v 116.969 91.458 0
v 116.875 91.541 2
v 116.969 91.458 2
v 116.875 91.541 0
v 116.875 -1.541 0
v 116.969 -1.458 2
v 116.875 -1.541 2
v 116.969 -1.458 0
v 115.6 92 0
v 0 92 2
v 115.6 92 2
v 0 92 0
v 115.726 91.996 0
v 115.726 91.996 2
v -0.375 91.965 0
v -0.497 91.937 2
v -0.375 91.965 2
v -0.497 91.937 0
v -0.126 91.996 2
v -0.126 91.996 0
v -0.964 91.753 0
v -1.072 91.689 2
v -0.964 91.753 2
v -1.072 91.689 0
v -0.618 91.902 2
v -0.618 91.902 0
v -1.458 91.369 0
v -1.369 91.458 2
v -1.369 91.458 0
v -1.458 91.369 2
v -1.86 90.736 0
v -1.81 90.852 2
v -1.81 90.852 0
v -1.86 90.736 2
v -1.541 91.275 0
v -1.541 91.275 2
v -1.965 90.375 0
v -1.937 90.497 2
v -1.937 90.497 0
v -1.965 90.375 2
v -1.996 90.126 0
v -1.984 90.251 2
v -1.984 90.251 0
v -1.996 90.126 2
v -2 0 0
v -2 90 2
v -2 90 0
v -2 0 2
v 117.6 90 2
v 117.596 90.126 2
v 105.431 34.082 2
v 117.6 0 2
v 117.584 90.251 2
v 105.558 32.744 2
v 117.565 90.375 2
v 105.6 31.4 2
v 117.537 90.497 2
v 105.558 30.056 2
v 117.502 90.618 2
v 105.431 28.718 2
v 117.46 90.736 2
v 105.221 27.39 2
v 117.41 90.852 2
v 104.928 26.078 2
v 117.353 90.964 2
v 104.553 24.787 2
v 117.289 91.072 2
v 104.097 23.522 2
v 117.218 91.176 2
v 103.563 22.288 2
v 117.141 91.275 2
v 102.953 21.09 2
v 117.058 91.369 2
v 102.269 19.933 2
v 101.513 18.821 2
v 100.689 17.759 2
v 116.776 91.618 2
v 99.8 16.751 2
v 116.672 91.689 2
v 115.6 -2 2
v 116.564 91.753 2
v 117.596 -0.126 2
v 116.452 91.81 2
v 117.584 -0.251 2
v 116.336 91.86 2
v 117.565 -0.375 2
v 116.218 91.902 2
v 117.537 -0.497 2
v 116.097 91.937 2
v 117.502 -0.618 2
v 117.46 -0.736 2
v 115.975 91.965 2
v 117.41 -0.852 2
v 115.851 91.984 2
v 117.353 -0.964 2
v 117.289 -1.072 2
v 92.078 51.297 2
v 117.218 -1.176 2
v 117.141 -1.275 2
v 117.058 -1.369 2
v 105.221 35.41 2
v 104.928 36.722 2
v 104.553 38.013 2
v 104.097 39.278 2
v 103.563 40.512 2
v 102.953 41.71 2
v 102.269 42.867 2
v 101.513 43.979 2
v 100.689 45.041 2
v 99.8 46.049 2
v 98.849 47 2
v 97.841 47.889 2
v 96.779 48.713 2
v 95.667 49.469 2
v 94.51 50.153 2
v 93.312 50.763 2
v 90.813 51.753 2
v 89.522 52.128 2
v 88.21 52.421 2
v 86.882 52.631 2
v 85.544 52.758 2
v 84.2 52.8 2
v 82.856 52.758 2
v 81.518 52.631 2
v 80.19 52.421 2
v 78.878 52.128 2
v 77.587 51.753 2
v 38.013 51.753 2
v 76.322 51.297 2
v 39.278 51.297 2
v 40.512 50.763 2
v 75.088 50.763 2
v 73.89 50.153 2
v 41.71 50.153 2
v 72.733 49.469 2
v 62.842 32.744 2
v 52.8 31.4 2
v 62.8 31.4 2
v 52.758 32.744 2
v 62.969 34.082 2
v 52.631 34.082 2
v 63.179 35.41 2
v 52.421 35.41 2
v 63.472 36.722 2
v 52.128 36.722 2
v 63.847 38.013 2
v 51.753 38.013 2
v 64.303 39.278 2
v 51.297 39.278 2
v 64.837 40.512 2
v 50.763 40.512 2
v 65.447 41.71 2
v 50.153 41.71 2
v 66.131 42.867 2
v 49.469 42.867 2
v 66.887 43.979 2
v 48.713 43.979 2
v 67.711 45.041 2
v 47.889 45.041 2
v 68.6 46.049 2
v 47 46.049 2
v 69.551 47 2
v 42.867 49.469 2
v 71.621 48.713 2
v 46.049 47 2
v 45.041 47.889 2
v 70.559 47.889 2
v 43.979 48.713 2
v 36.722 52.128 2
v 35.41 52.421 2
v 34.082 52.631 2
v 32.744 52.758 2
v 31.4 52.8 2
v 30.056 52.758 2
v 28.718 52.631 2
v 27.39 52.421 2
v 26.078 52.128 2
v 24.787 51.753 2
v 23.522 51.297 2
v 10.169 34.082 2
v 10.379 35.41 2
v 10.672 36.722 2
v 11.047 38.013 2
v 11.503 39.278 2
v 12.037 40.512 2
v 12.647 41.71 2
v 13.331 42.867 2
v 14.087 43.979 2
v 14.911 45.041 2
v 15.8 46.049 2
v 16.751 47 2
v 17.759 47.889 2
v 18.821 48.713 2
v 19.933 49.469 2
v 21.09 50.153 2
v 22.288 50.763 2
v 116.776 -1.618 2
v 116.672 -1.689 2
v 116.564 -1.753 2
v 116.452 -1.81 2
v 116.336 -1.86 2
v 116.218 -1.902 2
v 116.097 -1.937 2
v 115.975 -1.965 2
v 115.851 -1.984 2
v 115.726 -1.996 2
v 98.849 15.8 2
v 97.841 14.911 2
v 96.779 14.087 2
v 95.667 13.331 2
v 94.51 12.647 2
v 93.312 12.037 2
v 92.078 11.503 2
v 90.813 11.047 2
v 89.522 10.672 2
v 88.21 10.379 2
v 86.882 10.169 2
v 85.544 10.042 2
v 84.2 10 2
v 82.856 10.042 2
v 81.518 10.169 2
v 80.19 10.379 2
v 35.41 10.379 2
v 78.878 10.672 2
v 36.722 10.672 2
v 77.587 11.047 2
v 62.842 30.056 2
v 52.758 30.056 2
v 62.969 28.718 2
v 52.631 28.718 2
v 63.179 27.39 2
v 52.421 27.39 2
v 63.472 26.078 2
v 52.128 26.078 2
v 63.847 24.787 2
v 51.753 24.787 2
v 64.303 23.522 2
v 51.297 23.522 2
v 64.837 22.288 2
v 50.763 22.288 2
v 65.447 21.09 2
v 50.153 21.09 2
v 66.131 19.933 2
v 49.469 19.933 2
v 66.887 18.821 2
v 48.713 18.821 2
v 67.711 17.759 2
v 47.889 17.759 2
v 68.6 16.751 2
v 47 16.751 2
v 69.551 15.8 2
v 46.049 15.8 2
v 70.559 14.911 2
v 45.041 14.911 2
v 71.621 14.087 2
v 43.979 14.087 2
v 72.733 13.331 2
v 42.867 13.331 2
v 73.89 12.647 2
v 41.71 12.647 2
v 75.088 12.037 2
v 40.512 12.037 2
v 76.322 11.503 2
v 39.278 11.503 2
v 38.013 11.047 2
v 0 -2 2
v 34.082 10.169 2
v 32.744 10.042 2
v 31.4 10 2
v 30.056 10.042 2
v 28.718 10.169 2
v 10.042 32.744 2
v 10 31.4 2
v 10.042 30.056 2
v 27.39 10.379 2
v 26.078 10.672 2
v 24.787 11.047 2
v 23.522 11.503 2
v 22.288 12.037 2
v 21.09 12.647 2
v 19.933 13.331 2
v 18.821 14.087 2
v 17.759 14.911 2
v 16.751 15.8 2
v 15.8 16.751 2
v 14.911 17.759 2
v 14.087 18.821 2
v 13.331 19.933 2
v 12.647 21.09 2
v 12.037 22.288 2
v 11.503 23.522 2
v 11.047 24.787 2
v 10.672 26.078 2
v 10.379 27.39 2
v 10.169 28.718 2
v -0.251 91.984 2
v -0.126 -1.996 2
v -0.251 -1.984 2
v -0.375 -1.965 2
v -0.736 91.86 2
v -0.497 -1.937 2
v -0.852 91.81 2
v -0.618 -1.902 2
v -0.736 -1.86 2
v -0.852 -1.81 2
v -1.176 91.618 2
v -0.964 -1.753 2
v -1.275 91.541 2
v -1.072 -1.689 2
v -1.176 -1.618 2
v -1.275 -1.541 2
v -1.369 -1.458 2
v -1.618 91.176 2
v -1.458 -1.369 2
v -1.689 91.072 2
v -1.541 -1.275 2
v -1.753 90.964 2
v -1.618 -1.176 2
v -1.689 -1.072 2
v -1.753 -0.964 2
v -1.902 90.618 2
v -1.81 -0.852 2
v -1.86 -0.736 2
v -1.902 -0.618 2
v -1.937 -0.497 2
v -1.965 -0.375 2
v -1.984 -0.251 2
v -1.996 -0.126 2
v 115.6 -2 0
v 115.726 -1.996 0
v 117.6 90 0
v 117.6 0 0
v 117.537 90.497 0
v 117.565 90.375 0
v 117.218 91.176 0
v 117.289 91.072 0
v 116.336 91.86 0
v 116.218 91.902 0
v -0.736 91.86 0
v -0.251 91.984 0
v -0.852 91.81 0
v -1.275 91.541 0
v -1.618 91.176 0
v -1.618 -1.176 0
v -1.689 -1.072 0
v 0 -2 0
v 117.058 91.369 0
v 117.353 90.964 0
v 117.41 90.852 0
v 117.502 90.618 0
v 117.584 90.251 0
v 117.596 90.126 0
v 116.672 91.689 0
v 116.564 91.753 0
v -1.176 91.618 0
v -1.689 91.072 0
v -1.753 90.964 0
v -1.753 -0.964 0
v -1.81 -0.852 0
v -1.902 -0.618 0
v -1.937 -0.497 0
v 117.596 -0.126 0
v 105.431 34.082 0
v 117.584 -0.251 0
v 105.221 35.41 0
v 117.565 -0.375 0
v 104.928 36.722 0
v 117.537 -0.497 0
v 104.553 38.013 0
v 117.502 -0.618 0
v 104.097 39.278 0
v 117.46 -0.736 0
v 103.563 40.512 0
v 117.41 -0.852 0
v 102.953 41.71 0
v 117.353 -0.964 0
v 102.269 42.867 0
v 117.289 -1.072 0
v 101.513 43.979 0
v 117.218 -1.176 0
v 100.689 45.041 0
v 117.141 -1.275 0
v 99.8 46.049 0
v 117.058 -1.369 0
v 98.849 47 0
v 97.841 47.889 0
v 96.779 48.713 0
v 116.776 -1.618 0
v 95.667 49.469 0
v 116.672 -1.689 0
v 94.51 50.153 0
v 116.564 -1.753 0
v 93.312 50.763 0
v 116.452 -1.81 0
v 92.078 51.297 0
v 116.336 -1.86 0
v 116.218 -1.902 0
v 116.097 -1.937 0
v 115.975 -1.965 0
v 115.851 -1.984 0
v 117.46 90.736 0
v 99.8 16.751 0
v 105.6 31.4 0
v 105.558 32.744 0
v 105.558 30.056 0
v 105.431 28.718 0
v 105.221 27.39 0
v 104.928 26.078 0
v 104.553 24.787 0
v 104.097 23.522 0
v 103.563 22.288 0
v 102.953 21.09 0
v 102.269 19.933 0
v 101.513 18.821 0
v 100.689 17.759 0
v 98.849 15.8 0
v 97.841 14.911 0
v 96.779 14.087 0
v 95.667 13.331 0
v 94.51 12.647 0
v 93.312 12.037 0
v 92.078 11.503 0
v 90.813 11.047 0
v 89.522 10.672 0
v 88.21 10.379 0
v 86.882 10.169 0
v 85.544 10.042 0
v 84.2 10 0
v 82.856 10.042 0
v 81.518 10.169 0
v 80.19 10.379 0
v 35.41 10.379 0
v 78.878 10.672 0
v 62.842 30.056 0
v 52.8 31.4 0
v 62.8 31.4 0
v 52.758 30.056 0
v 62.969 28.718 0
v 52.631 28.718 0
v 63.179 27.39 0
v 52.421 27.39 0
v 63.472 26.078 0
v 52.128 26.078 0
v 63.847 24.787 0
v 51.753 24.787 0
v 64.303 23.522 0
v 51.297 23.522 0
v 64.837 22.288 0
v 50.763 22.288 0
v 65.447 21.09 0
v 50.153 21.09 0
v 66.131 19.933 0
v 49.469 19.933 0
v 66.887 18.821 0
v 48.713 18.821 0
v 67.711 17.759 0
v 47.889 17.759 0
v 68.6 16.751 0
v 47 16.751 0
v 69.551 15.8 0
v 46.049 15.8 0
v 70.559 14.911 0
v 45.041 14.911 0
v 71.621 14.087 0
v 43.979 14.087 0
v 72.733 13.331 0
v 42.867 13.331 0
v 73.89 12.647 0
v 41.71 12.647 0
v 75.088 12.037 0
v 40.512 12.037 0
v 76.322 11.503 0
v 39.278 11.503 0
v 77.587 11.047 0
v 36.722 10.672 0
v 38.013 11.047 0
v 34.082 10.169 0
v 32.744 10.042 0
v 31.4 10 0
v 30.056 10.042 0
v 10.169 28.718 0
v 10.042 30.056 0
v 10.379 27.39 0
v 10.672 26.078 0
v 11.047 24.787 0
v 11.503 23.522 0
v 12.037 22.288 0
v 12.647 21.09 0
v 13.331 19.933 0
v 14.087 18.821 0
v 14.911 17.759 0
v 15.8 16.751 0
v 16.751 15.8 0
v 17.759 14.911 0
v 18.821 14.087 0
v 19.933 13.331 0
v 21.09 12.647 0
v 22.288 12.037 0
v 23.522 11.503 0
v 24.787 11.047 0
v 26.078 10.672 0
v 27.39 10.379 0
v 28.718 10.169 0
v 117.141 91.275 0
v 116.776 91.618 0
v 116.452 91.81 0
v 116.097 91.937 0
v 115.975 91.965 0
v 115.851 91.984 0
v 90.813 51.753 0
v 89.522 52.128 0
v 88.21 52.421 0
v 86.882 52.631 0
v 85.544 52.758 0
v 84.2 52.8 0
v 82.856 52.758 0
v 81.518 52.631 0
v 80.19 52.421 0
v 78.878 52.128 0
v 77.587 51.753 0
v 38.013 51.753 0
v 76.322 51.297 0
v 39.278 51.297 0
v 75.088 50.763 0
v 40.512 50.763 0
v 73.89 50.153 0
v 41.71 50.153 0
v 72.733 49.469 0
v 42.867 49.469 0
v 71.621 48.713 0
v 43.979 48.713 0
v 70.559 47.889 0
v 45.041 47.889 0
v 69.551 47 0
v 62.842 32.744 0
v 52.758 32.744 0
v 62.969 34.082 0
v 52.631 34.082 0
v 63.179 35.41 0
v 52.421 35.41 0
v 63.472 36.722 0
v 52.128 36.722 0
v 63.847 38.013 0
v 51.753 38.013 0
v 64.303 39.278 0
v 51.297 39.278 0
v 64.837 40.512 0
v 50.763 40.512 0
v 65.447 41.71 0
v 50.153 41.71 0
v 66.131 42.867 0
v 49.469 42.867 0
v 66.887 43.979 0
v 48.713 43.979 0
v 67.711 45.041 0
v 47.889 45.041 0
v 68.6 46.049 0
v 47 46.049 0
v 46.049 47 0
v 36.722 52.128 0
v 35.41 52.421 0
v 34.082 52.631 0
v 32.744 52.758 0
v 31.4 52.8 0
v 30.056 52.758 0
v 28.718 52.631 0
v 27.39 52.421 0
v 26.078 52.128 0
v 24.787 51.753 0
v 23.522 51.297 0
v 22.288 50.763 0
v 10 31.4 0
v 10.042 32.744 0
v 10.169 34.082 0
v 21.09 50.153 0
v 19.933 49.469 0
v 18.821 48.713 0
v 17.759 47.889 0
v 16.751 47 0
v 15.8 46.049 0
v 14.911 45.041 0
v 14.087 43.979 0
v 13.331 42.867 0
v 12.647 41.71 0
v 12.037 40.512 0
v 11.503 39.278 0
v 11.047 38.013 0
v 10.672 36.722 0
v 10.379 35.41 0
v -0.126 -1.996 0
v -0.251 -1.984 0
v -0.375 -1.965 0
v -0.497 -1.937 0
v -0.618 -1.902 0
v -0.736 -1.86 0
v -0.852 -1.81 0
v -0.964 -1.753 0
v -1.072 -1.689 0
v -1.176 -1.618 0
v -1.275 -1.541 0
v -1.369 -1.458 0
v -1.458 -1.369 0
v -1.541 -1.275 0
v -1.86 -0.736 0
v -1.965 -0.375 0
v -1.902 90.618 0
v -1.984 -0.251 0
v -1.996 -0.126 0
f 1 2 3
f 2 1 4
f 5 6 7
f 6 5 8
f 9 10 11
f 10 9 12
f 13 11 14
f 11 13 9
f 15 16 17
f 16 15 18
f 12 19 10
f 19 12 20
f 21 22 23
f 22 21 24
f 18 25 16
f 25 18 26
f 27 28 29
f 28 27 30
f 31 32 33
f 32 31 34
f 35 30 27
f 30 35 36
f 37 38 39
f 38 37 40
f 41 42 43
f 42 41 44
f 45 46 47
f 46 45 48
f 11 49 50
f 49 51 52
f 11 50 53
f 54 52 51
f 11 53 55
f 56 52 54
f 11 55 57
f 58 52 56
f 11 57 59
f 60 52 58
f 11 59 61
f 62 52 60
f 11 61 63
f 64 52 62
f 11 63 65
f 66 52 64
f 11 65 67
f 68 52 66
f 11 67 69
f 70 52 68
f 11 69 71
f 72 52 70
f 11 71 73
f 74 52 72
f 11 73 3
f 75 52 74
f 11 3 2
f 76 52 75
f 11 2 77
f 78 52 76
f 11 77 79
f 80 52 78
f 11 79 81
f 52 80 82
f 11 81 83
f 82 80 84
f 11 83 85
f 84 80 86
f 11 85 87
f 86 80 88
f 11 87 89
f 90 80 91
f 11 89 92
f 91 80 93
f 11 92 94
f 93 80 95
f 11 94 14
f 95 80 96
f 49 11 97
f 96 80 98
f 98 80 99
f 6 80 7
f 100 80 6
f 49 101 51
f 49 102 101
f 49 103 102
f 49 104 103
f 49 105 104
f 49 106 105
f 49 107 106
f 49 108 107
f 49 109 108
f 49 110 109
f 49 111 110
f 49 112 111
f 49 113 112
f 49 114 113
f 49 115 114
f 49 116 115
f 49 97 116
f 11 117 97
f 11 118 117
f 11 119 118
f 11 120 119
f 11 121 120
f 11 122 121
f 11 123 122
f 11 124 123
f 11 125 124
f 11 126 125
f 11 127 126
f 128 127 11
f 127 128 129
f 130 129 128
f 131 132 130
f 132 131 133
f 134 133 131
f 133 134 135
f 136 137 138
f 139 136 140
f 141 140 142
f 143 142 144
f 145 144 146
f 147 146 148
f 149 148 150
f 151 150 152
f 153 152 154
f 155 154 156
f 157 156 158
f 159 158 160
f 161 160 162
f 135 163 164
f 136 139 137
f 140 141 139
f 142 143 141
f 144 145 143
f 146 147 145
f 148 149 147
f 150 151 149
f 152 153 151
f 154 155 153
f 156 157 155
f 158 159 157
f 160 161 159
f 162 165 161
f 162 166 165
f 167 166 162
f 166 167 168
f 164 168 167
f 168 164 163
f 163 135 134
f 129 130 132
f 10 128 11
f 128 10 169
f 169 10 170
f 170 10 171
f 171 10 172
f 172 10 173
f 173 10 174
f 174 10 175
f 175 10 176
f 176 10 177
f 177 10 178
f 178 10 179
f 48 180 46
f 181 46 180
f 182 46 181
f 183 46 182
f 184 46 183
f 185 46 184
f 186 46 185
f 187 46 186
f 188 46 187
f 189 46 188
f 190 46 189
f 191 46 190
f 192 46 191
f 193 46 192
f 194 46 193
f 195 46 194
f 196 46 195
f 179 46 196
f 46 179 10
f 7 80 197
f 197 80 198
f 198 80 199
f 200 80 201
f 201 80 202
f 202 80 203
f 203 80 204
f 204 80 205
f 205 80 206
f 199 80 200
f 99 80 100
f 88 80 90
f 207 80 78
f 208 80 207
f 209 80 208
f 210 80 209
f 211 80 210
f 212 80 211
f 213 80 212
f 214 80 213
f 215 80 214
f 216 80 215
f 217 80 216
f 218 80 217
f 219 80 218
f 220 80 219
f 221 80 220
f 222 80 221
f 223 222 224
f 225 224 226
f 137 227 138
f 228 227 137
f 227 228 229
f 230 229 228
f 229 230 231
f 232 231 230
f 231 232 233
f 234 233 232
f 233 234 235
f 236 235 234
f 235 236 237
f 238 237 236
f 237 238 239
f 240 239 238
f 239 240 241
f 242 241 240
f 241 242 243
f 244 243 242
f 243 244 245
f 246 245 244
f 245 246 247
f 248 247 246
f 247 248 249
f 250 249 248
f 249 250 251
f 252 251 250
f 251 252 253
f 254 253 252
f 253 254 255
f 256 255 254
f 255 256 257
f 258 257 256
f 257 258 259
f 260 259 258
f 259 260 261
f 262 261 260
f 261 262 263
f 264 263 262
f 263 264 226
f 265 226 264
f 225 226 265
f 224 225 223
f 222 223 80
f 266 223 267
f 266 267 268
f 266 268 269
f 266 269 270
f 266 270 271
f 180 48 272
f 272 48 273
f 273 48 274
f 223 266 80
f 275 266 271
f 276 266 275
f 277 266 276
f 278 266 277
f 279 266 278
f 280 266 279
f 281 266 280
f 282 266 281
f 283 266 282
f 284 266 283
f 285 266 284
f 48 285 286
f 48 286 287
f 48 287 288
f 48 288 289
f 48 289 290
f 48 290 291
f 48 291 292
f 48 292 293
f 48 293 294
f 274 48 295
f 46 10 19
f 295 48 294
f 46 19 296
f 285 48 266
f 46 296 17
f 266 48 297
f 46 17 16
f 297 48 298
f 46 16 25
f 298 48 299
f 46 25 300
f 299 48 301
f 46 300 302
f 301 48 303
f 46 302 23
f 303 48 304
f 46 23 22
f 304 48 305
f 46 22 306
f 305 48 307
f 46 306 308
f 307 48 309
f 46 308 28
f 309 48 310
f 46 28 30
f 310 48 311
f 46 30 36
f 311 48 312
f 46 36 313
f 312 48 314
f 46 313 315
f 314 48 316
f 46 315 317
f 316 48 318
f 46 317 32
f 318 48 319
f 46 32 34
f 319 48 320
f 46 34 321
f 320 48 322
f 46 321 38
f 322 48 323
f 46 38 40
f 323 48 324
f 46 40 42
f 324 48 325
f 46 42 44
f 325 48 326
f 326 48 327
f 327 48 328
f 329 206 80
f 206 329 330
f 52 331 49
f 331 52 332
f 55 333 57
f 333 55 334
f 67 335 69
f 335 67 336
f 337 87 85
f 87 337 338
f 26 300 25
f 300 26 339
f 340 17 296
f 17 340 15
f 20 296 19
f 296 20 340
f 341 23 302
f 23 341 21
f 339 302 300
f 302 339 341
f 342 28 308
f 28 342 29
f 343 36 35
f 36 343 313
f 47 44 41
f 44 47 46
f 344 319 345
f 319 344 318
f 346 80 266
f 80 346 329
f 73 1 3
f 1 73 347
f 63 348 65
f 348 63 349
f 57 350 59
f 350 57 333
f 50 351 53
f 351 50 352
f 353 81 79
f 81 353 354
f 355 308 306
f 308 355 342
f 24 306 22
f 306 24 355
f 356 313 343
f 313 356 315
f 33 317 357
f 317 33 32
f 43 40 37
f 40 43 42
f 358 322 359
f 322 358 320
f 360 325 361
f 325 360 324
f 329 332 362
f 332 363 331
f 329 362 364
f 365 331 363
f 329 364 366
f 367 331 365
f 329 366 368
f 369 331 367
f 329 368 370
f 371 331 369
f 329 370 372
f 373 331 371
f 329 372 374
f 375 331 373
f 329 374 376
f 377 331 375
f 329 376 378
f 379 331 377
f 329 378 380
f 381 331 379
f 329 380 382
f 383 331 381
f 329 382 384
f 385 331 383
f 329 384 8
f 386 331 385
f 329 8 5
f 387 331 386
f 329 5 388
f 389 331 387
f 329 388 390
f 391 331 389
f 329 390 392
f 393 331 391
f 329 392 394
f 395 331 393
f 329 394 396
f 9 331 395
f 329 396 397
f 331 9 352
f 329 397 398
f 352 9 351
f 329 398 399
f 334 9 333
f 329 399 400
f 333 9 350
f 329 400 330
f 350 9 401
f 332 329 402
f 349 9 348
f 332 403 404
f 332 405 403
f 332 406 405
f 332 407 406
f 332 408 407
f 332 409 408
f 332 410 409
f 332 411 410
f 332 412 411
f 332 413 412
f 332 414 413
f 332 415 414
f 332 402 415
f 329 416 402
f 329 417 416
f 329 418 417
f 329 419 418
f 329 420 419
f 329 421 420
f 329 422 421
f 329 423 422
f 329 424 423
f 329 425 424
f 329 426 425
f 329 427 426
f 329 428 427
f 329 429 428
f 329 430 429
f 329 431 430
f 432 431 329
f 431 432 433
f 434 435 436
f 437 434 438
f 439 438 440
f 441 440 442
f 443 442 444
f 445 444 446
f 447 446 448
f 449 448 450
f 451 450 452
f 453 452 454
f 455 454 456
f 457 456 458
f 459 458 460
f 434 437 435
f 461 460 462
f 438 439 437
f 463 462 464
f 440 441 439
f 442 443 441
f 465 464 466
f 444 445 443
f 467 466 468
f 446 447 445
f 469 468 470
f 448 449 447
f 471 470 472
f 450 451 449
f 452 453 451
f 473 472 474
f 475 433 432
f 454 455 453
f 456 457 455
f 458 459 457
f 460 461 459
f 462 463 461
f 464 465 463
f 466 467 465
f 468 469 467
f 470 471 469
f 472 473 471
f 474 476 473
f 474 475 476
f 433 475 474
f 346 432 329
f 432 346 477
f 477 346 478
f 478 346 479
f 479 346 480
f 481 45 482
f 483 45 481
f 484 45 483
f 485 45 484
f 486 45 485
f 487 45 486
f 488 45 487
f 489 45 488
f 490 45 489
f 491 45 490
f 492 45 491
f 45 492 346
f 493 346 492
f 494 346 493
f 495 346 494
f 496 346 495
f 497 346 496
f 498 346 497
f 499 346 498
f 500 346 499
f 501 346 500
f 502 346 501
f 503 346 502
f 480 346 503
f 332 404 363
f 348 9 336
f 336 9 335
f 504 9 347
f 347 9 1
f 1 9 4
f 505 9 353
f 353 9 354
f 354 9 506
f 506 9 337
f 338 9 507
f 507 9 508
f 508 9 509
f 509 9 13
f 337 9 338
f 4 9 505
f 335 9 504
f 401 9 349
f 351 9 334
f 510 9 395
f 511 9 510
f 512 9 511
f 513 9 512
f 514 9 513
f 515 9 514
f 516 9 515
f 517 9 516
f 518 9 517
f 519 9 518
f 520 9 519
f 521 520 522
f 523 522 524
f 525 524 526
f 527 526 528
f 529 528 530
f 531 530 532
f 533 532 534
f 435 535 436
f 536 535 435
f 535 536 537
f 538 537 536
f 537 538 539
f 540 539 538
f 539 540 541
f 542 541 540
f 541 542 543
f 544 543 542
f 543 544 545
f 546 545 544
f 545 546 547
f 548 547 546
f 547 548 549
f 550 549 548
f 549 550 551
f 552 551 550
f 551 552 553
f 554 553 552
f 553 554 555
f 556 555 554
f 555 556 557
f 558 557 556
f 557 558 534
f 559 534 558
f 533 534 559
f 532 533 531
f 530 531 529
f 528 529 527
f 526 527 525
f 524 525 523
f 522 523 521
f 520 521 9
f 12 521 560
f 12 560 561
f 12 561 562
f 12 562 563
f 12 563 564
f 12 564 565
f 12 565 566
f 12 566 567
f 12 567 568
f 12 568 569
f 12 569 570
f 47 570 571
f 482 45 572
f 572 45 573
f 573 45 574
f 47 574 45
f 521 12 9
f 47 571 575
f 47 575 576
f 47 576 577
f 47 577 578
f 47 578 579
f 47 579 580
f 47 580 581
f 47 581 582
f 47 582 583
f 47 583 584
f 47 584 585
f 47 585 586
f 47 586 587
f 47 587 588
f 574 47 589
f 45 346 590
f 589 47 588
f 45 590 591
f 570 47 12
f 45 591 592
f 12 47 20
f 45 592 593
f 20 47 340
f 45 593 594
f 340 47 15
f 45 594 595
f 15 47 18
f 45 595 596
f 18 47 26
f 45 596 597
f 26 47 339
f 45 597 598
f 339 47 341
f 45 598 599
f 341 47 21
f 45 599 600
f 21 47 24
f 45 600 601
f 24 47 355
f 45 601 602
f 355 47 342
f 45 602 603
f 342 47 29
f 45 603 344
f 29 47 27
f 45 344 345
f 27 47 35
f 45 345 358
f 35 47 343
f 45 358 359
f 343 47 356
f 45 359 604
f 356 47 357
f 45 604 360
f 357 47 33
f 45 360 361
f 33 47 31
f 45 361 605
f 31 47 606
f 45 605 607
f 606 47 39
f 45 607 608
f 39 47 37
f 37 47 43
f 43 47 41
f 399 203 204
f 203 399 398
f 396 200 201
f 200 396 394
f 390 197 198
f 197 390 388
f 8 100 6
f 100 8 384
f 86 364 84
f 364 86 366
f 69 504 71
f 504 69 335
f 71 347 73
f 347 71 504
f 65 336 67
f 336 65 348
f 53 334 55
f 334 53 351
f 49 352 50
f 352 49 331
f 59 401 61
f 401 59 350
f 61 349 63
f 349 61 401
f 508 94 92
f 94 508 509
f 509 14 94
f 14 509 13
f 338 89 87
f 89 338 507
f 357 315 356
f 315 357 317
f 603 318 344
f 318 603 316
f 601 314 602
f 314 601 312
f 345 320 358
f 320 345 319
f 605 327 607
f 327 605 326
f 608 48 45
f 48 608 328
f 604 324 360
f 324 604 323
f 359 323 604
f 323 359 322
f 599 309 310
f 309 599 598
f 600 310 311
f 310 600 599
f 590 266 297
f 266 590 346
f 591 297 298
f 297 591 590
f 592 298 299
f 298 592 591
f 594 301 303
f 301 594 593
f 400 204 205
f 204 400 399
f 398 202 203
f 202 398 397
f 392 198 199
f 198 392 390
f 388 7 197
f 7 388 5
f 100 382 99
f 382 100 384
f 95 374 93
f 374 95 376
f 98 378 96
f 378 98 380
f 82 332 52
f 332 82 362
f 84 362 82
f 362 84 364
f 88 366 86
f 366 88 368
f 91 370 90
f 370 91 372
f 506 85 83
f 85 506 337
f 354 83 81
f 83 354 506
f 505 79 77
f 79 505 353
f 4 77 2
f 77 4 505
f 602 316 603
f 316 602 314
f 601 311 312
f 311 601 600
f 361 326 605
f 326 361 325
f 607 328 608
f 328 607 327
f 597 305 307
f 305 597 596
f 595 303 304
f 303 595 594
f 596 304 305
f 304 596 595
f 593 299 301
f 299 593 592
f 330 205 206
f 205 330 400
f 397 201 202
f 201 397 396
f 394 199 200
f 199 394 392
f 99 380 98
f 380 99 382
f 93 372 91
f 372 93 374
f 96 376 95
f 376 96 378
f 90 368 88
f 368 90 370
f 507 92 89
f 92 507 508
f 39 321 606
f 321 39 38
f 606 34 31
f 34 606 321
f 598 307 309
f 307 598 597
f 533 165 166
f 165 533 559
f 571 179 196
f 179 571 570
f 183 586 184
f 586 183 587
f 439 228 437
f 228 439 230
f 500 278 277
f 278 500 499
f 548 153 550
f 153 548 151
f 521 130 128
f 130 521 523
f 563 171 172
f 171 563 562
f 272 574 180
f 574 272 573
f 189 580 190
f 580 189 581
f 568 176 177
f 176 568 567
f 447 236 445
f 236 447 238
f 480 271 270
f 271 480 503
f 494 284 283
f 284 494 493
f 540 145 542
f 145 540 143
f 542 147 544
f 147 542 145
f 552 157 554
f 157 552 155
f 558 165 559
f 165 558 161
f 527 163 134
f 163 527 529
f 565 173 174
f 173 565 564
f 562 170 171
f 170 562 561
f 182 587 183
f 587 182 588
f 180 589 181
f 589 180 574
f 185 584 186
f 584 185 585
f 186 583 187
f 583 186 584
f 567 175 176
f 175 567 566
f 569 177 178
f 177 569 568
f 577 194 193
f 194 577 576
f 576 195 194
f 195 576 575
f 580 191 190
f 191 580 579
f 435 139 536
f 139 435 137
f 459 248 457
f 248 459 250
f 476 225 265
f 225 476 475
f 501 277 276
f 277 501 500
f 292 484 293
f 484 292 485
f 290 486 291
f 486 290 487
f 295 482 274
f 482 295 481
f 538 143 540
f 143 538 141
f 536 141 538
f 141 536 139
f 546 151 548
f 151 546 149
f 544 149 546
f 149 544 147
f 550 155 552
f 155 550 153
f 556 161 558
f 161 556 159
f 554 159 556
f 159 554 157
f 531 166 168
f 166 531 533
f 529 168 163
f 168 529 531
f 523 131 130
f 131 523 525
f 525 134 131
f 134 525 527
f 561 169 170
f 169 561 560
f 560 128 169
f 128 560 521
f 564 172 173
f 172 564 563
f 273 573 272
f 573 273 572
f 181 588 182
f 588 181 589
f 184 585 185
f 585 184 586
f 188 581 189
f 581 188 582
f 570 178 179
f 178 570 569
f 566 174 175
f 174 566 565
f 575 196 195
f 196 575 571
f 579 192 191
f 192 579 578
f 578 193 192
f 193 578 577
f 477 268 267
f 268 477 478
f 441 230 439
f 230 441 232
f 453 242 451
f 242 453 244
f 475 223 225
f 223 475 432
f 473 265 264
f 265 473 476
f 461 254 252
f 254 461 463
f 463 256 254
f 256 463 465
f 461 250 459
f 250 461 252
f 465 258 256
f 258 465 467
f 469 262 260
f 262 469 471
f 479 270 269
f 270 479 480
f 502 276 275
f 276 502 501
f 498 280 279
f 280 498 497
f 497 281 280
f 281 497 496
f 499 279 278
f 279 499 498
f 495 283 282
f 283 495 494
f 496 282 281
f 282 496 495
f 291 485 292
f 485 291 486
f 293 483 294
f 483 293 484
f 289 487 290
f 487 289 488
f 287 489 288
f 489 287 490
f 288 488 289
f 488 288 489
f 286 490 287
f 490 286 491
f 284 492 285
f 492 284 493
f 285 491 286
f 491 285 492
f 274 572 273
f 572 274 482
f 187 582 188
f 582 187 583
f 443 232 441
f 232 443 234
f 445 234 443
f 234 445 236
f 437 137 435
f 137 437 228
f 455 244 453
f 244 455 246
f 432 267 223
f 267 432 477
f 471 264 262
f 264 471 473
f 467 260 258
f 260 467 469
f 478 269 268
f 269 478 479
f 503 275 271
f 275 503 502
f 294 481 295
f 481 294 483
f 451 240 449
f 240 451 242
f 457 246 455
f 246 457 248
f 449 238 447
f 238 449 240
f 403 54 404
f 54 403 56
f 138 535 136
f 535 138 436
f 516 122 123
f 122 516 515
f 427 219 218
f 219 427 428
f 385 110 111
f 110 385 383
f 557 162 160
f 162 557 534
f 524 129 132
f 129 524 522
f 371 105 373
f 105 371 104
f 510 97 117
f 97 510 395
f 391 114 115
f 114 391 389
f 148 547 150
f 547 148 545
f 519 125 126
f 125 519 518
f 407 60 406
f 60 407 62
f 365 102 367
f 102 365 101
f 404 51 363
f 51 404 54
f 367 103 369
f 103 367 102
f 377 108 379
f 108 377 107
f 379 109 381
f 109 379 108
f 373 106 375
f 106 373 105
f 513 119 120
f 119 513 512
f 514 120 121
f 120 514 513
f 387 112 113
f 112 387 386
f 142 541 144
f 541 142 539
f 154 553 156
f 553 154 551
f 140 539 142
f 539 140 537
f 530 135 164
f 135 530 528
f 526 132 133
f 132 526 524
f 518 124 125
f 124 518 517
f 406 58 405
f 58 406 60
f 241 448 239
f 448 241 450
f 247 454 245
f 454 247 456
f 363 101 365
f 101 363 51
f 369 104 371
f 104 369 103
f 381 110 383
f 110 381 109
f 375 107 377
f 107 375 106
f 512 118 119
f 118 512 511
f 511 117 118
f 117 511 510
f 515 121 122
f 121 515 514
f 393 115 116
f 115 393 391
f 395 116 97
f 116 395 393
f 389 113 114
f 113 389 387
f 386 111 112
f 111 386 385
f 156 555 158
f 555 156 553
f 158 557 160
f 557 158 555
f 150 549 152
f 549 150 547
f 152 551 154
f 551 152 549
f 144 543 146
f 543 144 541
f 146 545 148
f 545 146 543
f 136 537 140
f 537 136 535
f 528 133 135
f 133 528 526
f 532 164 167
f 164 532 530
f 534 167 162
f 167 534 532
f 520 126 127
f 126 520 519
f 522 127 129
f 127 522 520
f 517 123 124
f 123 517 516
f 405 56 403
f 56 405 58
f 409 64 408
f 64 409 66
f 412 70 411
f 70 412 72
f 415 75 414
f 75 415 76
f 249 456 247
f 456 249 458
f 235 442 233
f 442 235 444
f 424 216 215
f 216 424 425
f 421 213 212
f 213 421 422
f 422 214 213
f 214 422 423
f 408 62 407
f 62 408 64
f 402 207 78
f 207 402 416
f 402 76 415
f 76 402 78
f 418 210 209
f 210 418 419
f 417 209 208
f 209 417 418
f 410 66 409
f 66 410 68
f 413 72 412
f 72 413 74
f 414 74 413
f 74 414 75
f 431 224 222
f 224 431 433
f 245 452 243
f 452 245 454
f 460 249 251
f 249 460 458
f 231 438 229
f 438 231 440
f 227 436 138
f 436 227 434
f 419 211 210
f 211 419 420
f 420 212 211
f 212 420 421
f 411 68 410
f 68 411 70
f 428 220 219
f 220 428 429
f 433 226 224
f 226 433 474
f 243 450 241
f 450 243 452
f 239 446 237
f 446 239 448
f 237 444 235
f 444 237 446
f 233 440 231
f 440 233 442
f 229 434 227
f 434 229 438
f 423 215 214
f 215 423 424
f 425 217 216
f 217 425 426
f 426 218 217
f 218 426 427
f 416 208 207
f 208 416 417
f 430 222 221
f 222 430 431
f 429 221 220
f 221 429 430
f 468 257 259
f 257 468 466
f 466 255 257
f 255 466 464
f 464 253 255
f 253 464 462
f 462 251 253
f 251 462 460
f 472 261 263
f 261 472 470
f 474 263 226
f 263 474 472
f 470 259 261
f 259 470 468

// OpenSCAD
// file: bt_speaker_param_v1_0.scad
// This "3D Printed Bluetooth Speaker Box". 
//  ----------------------------------------------------------------------- LICENSE
//  This "3D Printed Bluetooth Speaker Box" by Darko Stefanovic is licensed
//  under the Creative Commons Attribution-ShareAlike 3.0 Unported License.
//  To view a copy of this license, visit
//  http://creativecommons.org/licenses/by-sa/3.0/
//  or send a letter to Creative Commons, PO Box 1866, Mountain View, CA 94042, USA.

$fn=100; // resolution
// main file
include <bt_speaker_param_v1_0.scad>

frontPlateThickness=1;
cylRoundEdgeRadius=2;
cubeFrontPlateRectHeight=115.6;
cubeFrontPlateRectWidth=90;
speakerRadius=21.4;
speakerDist=10;

//color("red", 0.5) cylinder(r=cylRoundEdgeRadius,h=frontPlateThickness);
//color("green", 0.5) cube([cubeFrontPlateRectHeight,cubeFrontPlateRectWidth,frontPlateThickness]);

//color("pink", 0.5) 

difference() {

minkowski()
{
  cylinder(r=cylRoundEdgeRadius,h=frontPlateThickness);
  cube([cubeFrontPlateRectHeight,cubeFrontPlateRectWidth,frontPlateThickness]);
}

color("red", 0.5) translate([speakerRadius + speakerDist, speakerRadius + speakerDist, -1])
cylinder(r=speakerRadius,h=(frontPlateThickness * 4));

color("blue", 0.5) translate([speakerRadius + speakerDist + speakerRadius + speakerRadius +speakerDist, speakerRadius + speakerDist, -1])
cylinder(r=speakerRadius,h=(frontPlateThickness * 4));
}
